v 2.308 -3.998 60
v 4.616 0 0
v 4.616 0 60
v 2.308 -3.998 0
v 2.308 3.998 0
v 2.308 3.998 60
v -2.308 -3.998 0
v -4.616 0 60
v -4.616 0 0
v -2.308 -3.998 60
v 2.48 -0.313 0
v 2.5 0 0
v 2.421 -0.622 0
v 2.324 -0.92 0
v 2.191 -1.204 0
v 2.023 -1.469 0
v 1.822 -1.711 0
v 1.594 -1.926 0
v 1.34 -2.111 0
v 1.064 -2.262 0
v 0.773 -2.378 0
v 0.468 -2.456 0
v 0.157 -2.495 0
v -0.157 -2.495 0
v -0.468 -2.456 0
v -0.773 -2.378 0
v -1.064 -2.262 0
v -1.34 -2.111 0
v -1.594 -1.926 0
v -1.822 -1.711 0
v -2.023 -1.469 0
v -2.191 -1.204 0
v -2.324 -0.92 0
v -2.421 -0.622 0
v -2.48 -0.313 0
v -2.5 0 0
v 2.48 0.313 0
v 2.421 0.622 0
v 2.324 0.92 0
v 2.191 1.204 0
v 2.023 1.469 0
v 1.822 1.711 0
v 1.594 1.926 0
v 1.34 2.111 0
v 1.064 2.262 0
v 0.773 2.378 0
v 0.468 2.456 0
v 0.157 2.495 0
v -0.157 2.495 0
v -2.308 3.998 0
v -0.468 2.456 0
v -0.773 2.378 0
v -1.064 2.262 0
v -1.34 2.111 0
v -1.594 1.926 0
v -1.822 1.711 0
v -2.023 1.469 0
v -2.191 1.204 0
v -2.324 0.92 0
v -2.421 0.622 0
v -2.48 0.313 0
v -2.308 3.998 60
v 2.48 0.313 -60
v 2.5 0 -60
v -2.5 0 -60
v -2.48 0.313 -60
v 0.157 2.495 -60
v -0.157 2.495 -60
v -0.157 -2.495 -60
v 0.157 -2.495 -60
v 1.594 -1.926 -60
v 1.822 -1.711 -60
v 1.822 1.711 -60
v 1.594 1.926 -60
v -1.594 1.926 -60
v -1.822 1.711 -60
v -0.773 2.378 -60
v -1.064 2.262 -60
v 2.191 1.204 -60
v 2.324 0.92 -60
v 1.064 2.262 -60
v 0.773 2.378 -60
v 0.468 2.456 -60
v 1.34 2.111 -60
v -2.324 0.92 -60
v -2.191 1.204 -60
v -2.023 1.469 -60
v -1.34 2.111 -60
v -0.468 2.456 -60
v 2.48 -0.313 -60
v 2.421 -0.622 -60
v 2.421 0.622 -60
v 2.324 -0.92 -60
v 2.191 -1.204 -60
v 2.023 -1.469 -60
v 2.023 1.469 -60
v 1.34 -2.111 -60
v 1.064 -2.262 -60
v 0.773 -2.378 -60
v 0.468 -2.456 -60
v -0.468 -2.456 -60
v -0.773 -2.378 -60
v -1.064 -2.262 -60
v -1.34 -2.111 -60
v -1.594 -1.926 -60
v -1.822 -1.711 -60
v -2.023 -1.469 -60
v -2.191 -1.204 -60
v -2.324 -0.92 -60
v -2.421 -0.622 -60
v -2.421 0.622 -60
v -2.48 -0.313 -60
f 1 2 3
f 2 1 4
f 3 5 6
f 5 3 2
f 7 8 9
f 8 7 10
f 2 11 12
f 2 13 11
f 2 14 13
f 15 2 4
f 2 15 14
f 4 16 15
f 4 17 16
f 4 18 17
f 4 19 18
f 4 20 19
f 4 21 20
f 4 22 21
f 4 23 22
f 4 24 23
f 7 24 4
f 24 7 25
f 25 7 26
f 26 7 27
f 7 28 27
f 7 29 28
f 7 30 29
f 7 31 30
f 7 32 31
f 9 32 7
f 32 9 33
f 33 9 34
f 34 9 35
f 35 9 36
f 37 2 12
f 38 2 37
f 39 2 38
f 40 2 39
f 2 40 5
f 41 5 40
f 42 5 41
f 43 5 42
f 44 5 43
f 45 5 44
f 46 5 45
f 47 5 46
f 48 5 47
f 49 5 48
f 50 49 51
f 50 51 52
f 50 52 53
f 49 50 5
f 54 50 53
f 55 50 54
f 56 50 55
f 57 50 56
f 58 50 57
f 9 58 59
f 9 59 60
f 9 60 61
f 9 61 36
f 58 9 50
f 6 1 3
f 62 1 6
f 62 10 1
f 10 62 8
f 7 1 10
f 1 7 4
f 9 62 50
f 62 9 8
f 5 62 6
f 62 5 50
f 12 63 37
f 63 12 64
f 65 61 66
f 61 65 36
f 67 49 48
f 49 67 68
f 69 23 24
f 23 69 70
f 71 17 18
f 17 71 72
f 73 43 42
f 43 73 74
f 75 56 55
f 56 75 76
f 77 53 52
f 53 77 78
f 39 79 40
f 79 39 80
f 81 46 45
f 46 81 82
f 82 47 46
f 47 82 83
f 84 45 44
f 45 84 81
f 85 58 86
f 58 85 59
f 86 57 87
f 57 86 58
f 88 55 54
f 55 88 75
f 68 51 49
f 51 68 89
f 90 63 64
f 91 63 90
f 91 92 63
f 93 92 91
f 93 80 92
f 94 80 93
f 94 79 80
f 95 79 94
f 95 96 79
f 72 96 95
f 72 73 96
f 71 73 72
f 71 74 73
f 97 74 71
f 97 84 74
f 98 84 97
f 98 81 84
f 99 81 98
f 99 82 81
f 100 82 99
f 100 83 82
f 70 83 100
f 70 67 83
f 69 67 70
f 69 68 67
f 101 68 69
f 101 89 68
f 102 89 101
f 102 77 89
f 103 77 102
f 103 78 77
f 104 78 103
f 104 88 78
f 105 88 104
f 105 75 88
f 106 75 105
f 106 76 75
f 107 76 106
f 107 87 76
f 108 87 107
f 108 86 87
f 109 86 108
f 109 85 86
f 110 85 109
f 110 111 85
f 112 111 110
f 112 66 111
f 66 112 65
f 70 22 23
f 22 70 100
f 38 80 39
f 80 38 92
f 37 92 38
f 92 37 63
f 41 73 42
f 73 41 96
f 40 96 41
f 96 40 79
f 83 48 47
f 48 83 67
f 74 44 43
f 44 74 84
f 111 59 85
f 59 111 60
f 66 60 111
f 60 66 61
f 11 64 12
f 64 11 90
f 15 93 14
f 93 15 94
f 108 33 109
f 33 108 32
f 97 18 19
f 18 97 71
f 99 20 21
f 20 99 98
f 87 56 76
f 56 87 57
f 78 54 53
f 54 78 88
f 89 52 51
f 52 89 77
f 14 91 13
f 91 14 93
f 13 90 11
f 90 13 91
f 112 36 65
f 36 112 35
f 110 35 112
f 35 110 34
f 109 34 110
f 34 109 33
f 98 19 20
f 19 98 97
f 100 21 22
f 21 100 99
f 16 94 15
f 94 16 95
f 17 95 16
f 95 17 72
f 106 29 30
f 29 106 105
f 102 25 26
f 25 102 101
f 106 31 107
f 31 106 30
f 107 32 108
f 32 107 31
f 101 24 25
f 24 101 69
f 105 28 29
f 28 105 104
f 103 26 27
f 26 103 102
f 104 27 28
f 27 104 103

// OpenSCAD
$fn = 50;


difference() {
	union() {
		linear_extrude(height = 60) {
			polygon(points = [[4.6160000000, 0.0000000000], [2.3080000000, 3.9975732639], [-2.3080000000, 3.9975732639], [-4.6160000000, 0.0000000000], [-2.3080000000, -3.9975732639], [2.3080000000, -3.9975732639]]);
		}
		translate(v = [0, 0, -60]) {
			cylinder(h = 60, r = 2.5000000000);
		}
	}
	union();
}
